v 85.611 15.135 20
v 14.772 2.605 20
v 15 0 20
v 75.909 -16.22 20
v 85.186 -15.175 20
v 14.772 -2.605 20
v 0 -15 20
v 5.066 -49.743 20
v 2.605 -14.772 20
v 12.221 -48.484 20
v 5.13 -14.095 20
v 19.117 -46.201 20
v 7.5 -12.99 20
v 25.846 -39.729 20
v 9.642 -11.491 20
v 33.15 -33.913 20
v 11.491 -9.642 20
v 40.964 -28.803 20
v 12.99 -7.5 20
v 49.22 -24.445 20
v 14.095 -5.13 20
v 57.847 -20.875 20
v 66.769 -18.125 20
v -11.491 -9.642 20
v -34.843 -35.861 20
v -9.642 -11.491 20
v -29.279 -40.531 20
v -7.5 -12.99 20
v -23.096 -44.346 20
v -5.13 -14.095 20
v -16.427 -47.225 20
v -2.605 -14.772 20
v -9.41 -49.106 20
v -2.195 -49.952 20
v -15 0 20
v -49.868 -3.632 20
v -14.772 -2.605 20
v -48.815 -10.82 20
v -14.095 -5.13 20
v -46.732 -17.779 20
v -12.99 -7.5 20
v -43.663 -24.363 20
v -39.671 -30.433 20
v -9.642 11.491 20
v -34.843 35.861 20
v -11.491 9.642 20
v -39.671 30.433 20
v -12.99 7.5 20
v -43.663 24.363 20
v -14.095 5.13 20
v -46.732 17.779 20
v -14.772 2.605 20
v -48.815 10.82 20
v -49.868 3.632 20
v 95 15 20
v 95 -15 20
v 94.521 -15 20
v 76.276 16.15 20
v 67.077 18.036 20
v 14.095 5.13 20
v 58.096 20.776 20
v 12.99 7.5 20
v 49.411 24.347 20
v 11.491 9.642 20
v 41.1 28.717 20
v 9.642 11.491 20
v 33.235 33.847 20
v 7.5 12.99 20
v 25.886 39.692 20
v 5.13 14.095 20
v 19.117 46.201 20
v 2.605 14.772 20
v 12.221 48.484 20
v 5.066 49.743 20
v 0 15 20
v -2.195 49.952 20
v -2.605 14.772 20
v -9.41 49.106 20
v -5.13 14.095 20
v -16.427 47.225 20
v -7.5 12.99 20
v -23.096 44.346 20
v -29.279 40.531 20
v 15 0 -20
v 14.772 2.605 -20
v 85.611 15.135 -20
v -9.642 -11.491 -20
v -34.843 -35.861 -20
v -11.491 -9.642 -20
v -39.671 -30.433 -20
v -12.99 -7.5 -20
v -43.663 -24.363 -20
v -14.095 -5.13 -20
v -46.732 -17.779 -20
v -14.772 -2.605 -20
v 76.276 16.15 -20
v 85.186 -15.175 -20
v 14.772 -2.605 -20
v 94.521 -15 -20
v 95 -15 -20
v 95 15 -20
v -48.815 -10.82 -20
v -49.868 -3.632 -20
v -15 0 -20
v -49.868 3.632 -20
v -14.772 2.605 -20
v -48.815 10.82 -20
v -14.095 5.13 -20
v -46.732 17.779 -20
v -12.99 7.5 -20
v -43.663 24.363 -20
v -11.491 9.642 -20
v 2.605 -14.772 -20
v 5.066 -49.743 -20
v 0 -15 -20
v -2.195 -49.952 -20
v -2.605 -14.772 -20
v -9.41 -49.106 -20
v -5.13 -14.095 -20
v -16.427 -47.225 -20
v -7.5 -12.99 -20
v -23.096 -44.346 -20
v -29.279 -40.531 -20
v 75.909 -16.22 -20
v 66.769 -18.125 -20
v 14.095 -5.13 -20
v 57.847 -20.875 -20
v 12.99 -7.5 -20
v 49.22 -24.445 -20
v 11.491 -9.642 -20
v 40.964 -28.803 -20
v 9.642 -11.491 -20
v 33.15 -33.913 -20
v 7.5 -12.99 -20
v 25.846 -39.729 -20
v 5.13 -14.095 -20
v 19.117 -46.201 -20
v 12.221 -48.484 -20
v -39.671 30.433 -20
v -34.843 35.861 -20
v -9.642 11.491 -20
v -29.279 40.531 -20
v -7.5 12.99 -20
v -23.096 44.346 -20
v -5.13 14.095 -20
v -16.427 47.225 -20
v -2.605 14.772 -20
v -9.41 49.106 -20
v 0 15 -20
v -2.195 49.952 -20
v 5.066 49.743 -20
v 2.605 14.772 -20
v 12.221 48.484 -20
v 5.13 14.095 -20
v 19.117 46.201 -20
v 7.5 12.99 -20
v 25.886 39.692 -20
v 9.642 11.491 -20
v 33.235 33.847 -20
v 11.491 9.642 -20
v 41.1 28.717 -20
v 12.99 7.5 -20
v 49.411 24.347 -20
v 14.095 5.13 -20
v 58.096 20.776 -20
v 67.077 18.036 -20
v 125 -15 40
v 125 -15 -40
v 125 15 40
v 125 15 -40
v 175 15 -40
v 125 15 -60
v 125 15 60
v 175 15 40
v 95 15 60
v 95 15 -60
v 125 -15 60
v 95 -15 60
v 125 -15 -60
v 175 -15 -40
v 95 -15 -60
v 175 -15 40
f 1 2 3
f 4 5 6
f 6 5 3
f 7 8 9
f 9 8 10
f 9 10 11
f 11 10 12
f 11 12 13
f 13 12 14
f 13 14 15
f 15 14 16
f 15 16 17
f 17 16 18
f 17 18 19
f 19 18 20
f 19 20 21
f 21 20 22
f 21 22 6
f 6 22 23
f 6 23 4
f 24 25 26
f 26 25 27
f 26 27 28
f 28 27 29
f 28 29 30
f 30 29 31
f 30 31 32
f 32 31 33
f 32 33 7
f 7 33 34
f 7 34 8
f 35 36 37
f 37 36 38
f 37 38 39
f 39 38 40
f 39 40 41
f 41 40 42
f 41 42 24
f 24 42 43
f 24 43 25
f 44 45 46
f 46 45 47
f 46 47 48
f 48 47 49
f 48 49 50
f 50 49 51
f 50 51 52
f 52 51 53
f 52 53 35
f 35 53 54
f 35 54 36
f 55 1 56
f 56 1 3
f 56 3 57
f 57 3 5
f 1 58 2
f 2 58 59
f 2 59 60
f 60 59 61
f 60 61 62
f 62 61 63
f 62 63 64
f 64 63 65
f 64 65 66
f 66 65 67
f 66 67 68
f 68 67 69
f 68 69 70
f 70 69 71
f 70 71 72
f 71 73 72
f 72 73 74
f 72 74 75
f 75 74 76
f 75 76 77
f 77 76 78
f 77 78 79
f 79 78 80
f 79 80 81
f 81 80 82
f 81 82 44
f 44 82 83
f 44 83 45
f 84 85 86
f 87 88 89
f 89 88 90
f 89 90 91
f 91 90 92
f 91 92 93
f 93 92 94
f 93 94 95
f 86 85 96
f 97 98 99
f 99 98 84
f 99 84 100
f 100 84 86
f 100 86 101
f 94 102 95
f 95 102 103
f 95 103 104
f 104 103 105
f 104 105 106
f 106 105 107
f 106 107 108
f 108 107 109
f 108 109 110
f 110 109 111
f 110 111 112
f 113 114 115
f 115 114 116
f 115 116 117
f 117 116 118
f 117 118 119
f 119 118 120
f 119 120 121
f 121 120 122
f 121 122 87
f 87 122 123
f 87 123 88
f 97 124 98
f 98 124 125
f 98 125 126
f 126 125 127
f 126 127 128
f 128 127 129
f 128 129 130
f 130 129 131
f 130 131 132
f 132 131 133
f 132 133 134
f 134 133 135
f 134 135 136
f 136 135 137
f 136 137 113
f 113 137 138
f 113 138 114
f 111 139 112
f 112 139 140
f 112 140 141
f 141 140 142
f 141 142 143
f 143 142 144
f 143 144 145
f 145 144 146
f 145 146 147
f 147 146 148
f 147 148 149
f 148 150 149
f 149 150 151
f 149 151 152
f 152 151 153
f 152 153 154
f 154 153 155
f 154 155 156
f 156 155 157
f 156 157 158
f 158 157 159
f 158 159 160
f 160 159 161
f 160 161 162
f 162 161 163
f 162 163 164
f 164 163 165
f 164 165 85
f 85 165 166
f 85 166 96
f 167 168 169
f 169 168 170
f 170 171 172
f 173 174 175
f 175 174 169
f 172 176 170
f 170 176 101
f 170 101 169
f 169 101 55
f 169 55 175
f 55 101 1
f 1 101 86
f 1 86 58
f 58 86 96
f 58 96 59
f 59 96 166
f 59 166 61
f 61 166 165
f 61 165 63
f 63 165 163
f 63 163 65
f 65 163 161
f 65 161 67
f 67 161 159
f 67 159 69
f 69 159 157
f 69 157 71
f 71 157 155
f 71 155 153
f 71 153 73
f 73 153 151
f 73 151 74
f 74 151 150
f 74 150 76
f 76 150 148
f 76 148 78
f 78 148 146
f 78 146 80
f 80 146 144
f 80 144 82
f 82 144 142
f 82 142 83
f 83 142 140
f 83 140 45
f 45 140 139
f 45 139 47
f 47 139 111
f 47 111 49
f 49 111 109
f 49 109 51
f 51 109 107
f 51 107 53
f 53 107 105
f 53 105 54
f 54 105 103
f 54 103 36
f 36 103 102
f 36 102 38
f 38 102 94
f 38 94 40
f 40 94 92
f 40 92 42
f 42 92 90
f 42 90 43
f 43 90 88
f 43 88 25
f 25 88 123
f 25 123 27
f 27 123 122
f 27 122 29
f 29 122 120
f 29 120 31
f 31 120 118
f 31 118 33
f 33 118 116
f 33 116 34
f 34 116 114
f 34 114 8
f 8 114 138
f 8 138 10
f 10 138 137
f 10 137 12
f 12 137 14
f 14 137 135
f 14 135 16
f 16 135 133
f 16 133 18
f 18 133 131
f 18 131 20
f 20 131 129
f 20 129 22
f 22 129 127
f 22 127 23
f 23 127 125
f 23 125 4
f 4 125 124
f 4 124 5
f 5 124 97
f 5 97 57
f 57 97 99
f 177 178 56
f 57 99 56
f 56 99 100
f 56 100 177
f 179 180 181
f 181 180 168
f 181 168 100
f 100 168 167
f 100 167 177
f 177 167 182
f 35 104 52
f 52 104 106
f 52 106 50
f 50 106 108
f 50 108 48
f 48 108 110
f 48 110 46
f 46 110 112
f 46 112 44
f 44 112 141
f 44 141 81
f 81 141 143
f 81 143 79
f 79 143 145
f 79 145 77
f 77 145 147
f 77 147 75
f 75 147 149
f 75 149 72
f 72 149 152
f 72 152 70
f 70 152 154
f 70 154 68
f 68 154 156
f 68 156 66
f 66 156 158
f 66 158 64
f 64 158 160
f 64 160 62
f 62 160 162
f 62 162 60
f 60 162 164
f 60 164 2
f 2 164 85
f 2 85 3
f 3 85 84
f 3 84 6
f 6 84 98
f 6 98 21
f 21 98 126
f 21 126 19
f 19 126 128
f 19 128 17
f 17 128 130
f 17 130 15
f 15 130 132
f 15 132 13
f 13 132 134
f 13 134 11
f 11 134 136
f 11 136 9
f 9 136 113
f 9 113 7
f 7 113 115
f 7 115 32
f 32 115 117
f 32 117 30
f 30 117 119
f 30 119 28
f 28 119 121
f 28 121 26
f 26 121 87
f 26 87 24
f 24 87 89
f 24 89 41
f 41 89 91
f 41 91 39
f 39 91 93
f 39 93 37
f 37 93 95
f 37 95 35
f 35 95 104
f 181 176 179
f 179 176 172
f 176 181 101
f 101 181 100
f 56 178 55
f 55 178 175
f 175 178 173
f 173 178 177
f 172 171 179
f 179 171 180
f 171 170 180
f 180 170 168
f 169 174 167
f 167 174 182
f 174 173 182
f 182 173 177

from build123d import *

# Parameters (mm, degrees)
SKETCH1_R           = 15
BOSS_EXTRUDE1_DEPTH = 20
SKETCH5_W           = 30
SKETCH5_H           = 30
BOSS_EXTRUDE2_DEPTH = 60
BOSS_EXTRUDE3_DEPTH = 30


with BuildPart() as part:
    # Sketch1 → Boss-Extrude1 (new, symmetric)
    with BuildSketch(Plane.XY):
        with BuildLine():
            Line((95, 15), (125, 15))
            Line((125, 15), (125, -15))
            Line((125, -15), (94.520902358, -15))
            ThreePointArc((94.520902358, -15), (53.491668614, -22.559030862), (19.11731281, -46.200956169))
            ThreePointArc((19.11731281, -46.200956169), (-50, 0), (19.11731281, 46.200956169))
            ThreePointArc((19.11731281, 46.200956169), (53.711420625, 22.459790206), (95, 15))
        make_face()
        Circle(SKETCH1_R, mode=Mode.SUBTRACT)
    extrude(amount=BOSS_EXTRUDE1_DEPTH, both=True)

    # Sketch5 → Boss-Extrude2 (add, symmetric)
    with BuildSketch(Plane.XY):
        with Locations((110, 0)):
            Rectangle(SKETCH5_W, SKETCH5_H)
    extrude(amount=BOSS_EXTRUDE2_DEPTH, both=True)

    # Sketch6 → Boss-Extrude3 (add)
    with BuildSketch(Plane(origin=(0, 15, 0), x_dir=(1, 0, 0), z_dir=(0, 1, 0))):
        Polygon((125, 60), (175, 40), (125, 40), align=None)
        Polygon((125, -60), (175, -40), (125, -40), align=None)
    extrude(amount=-BOSS_EXTRUDE3_DEPTH)


solid = part.part
